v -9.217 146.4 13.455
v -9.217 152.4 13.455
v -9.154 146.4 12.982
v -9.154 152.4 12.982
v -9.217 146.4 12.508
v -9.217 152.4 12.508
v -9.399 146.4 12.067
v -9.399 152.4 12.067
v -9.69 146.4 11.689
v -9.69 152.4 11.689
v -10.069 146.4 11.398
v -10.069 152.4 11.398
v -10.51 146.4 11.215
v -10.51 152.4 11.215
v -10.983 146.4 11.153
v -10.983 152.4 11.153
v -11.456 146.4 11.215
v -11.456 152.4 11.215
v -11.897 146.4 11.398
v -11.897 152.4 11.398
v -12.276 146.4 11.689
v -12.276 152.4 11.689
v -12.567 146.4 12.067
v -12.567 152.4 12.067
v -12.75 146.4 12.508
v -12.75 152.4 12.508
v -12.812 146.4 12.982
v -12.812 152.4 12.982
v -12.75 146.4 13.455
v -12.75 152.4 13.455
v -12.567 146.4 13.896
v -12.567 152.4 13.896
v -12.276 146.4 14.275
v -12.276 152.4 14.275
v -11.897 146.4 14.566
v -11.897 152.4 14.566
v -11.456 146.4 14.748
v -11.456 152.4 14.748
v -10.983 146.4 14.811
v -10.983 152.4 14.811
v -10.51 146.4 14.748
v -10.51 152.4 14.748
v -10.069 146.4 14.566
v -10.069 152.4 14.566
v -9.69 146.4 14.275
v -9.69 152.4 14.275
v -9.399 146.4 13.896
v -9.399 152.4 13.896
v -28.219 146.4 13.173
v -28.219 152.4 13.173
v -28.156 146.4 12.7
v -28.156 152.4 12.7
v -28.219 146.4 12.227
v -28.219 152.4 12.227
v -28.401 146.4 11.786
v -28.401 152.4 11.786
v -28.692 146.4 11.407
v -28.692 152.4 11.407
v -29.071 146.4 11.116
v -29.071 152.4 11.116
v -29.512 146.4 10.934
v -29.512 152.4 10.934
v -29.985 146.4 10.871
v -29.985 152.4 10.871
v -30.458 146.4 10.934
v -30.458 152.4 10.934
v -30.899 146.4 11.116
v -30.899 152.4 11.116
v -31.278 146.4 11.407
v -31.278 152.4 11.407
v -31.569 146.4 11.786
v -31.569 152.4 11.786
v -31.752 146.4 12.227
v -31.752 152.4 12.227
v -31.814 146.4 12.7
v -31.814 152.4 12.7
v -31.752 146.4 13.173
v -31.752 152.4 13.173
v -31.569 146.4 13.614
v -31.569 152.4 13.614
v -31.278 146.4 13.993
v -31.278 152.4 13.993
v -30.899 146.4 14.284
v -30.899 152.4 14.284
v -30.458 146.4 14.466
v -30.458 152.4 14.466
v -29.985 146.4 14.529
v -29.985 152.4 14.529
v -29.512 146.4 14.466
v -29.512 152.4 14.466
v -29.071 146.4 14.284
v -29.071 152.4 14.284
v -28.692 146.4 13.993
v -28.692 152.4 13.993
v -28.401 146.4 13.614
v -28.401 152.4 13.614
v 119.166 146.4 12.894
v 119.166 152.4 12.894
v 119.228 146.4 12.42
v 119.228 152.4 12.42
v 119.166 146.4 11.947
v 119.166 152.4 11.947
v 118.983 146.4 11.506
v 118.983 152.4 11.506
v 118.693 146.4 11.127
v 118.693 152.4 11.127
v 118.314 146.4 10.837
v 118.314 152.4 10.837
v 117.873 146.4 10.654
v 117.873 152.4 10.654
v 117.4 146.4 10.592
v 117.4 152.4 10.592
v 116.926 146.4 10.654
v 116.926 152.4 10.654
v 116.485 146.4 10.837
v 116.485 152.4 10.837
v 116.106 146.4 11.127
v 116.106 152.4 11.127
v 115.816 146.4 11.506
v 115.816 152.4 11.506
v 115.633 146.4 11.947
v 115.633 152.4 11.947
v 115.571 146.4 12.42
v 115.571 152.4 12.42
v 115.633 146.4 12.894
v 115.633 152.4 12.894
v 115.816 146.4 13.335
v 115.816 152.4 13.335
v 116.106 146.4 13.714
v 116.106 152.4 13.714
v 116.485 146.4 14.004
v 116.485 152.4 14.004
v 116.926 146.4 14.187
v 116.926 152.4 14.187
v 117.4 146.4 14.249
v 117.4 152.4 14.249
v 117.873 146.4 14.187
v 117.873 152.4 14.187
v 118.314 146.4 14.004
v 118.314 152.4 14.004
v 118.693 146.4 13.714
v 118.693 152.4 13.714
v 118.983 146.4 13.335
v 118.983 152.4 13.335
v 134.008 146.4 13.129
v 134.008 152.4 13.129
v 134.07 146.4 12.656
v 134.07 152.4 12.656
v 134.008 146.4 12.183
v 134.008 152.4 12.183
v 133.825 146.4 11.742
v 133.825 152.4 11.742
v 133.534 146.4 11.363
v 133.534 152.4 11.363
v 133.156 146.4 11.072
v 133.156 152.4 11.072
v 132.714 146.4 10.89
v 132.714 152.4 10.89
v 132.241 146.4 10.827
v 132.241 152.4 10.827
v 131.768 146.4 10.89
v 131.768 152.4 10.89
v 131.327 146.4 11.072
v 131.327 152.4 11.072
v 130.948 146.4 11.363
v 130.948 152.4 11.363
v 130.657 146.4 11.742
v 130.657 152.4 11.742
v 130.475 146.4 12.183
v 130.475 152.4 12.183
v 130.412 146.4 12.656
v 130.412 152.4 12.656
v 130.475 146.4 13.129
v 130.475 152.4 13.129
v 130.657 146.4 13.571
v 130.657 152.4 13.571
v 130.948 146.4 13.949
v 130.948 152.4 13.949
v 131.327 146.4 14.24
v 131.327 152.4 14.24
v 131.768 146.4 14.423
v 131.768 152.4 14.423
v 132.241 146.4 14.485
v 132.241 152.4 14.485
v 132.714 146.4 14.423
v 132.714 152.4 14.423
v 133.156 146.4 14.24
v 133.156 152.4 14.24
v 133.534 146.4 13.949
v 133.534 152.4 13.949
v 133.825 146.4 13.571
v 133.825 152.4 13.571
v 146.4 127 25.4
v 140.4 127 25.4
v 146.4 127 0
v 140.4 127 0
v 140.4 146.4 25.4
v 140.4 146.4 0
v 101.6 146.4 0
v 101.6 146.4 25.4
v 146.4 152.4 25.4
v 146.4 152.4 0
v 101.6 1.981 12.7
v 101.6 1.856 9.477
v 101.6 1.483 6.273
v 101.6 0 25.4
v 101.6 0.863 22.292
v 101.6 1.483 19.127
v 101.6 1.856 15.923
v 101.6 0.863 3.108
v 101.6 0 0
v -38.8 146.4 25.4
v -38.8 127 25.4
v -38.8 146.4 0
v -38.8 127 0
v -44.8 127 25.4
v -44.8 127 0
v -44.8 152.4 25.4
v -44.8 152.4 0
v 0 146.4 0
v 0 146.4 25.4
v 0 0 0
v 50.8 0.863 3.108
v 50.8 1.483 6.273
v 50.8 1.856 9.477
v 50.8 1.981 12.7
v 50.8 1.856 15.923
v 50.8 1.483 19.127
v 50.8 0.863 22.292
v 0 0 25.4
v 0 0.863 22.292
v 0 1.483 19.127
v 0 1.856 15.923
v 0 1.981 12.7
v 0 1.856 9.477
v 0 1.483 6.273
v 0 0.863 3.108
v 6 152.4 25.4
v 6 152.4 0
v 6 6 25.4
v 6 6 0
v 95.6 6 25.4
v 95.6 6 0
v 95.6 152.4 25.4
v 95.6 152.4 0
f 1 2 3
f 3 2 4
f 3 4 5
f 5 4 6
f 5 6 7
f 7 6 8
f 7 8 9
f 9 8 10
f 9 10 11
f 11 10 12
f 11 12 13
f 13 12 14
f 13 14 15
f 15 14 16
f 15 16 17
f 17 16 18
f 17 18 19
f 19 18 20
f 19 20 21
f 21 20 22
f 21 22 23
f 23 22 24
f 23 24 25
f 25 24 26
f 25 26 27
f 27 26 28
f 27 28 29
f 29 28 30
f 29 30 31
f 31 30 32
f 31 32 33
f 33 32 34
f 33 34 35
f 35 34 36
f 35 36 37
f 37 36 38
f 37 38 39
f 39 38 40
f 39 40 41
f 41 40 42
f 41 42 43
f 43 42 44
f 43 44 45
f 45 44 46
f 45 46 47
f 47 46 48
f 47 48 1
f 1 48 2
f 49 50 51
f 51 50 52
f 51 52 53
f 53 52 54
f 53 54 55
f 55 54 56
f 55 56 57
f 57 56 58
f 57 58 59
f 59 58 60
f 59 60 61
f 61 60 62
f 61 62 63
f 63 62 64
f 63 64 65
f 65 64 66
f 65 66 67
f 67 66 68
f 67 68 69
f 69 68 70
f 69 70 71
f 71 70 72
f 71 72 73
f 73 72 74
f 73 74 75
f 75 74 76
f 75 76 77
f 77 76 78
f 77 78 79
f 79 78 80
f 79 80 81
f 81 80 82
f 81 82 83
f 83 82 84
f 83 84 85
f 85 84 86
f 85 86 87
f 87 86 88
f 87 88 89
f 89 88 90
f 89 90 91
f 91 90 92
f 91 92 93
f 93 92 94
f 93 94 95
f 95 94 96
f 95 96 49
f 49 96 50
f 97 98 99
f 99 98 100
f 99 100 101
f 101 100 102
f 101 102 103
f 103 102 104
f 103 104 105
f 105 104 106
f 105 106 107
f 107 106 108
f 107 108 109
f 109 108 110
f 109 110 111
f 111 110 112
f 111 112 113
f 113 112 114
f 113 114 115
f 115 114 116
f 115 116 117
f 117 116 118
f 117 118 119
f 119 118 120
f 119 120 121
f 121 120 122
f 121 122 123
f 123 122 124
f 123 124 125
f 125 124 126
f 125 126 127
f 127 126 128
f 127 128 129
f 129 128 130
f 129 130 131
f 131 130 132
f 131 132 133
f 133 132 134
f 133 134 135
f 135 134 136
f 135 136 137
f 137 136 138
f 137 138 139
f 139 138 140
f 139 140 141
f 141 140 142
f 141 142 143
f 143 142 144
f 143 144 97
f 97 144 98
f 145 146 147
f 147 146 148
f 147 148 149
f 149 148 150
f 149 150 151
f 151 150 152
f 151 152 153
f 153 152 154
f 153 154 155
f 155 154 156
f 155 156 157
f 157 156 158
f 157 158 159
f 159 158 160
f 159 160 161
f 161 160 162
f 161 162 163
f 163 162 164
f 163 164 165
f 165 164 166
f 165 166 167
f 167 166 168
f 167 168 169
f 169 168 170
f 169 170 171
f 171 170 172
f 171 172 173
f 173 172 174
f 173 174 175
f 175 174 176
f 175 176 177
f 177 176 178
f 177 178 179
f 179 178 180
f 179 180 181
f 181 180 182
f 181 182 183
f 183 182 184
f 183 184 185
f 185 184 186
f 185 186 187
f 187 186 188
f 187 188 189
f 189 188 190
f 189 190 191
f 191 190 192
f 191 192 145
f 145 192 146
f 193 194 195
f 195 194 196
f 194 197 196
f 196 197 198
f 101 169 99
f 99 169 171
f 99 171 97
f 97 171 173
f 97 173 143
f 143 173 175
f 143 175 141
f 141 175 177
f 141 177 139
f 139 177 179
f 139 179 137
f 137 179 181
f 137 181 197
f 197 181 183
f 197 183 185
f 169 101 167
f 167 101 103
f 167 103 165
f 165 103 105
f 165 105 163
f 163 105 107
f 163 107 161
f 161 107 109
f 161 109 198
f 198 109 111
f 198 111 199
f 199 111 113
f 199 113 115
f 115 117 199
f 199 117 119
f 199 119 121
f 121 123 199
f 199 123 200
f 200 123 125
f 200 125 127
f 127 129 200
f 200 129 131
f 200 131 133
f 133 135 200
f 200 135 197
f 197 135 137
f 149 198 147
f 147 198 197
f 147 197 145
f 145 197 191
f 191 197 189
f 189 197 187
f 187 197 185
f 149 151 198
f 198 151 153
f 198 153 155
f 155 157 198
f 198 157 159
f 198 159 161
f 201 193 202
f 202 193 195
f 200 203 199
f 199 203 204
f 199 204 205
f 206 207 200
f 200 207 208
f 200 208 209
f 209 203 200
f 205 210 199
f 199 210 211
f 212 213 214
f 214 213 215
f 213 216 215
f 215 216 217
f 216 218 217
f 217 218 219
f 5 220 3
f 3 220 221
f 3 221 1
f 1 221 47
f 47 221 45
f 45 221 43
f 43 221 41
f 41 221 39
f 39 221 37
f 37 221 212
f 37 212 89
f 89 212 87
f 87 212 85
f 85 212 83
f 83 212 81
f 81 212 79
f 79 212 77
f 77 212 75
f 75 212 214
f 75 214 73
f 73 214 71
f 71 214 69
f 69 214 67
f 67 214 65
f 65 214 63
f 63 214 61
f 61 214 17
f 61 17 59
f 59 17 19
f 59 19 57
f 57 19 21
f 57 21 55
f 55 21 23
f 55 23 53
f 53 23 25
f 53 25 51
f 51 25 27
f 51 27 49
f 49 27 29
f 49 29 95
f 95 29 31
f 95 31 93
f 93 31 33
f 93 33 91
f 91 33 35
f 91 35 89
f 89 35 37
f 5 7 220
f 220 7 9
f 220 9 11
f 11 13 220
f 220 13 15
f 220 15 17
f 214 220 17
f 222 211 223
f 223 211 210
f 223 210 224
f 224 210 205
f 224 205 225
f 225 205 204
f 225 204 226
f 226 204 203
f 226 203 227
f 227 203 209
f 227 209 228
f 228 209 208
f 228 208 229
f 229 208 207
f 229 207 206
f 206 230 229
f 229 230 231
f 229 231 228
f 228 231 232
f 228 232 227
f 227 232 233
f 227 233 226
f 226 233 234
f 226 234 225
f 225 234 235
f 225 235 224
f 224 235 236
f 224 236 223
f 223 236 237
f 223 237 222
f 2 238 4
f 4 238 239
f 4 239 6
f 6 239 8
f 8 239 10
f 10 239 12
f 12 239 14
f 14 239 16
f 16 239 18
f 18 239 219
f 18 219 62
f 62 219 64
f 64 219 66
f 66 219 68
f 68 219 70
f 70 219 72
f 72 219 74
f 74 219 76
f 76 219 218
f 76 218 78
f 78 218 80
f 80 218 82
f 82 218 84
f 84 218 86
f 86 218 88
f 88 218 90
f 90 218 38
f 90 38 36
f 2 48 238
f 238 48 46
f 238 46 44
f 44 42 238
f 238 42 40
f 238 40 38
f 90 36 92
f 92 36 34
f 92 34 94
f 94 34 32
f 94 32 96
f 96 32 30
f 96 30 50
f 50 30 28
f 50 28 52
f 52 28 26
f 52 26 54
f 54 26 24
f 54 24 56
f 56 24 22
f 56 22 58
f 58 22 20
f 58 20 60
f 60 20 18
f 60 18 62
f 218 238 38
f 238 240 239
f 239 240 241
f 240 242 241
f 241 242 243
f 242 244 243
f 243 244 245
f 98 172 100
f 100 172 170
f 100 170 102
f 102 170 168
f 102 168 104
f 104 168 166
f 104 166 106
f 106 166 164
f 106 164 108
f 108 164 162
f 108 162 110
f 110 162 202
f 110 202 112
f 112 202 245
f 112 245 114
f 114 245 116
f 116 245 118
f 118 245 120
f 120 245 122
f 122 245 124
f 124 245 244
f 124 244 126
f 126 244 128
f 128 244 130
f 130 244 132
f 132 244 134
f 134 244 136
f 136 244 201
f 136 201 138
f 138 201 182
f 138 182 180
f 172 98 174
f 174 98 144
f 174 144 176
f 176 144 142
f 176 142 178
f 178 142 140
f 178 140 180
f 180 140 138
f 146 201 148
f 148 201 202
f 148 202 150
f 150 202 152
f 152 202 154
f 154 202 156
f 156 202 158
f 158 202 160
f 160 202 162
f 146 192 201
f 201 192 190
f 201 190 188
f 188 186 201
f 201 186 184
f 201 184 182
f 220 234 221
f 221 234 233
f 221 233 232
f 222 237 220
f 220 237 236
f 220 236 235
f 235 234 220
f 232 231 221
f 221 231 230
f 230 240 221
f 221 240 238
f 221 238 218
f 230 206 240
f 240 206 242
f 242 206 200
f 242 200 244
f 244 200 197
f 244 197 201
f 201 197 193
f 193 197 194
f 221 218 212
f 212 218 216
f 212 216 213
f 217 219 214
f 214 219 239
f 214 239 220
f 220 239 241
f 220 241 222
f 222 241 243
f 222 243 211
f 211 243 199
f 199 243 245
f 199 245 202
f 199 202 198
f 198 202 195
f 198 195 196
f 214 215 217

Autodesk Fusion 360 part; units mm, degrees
sketch "Sketch1" plane through (0, 0, 0) normal (0, 0, 1) x (1, 0, 0)
  line L0 (0, 0) -> (101.6, 0)
  line L1 (101.6, 0) -> (101.6, 6)
  line L2 (101.6, 6) -> (0, 6)
  line L3 (0, 6) -> (0, 0)
  dimension "d1" = 101.6
  dimension "d2" = 6
extrude "Extrude1" add sketch "Sketch1" along normal blind 25.4
sketch "Sketch2" plane through (0, 0, 25.4) normal (0, 0, 1) x (-1, 0, 0)
  line L0 (0, -6) -> (0, 0)
  line L1 (0, 0) -> (-101.6, 0)
  line L2 (-101.6, 0) -> (-101.6, -6)
  line L3 (-101.6, -6) -> (0, -6)
  line L4 (-101.6, 0) -> (-95.6, 0)
  line L5 (-95.6, 0) -> (-95.6, -152.4)
  line L6 (-95.6, -152.4) -> (-101.6, -152.4)
  line L7 (-101.6, -152.4) -> (-101.6, 0)
  dimension "d5" = 152.4
  dimension "d6" = 6
extrude "Extrude2" add sketch "Sketch2" against normal blind 25.4 contours L3 L5 L6 L7
sketch "Sketch3" plane through (0, 0, 25.4) normal (0, 0, 1) x (-1, 0, 0)
  line L0 (0, -6) -> (0, 0)
  line L1 (0, 0) -> (-101.6, 0)
  line L2 (-101.6, 0) -> (-101.6, -152.4)
  line L3 (-101.6, -152.4) -> (-95.6, -152.4)
  line L4 (-95.6, -152.4) -> (-95.6, -6)
  line L5 (-95.6, -6) -> (0, -6)
  line L6 (0, 0) -> (-6, 0)
  line L7 (-6, 0) -> (-6, -152.4)
  line L8 (-6, -152.4) -> (0, -152.4)
  line L9 (0, -152.4) -> (0, 0)
  dimension "d9" = 152.4
  dimension "d10" = 6
extrude "Extrude3" add sketch "Sketch3" against normal blind 25.4 contours L5 L7 L8 L9
sketch "Sketch4" plane through (101.6, 0, 0) normal (1, 0, 0) x (0, 1, 0)
  line L0 (0, 0) -> (152.4, 0)
  line L1 (152.4, 0) -> (152.4, 25.4)
  line L2 (152.4, 25.4) -> (0, 25.4)
  line L3 (0, 25.4) -> (0, 0)
  circle A0 centre (-39.719, 12.7) radius 41.7
  dimension "d13" = 83.4
extrude "Extrude4" cut sketch "Sketch4" against normal blind 101.6 contours L3 A0 picked at (0.3655, 9.8525)
sketch "Sketch5" plane through (0, 0, 25.4) normal (0, 0, 1) x (-1, 0, 0)
  line L0 (0, -152.4) -> (0, 0)
  line L1 (0, 0) -> (-101.6, 0)
  line L2 (-101.6, 0) -> (-101.6, -152.4)
  line L3 (-101.6, -152.4) -> (-95.6, -152.4)
  line L4 (-95.6, -152.4) -> (-95.6, -6)
  line L5 (-95.6, -6) -> (-6, -6)
  line L6 (-6, -6) -> (-6, -152.4)
  line L7 (-6, -152.4) -> (0, -152.4)
  line L8 (-6, -152.4) -> (44.8, -152.4)
  line L9 (44.8, -152.4) -> (44.8, -146.4)
  line L10 (44.8, -146.4) -> (-6, -146.4)
  line L11 (-6, -146.4) -> (-6, -152.4)
  dimension "d16" = 50.8
  dimension "d17" = 6
extrude "Extrude5" add sketch "Sketch5" against normal blind 25.4 contours L0 L8 L9 L10
sketch "Sketch6" plane through (0, 0, 25.4) normal (0, 0, 1) x (-1, 0, 0)
  line L0 (0, -146.4) -> (0, 0)
  line L1 (0, 0) -> (-101.6, 0)
  line L2 (-101.6, 0) -> (-101.6, -152.4)
  line L3 (-101.6, -152.4) -> (-95.6, -152.4)
  line L4 (-95.6, -152.4) -> (-95.6, -6)
  line L5 (-95.6, -6) -> (-6, -6)
  line L6 (-6, -6) -> (-6, -152.4)
  line L7 (-6, -152.4) -> (44.8, -152.4)
  line L8 (44.8, -152.4) -> (44.8, -146.4)
  line L9 (44.8, -146.4) -> (0, -146.4)
  line L10 (44.8, -152.4) -> (38.8, -152.4)
  line L11 (38.8, -152.4) -> (38.8, -127)
  line L12 (38.8, -127) -> (44.8, -127)
  line L13 (44.8, -127) -> (44.8, -152.4)
  dimension "d20" = 25.4
  dimension "d21" = 6
extrude "Extrude6" add sketch "Sketch6" against normal blind 25.4 contours L9 L11 L12 L13
sketch "Sketch7" plane through (0, 0, 25.4) normal (0, 0, 1) x (-1, 0, 0)
  line L0 (0, -146.4) -> (0, 0)
  line L1 (0, 0) -> (-101.6, 0)
  line L2 (-101.6, 0) -> (-101.6, -152.4)
  line L3 (-101.6, -152.4) -> (-95.6, -152.4)
  line L4 (-95.6, -152.4) -> (-95.6, -6)
  line L5 (-95.6, -6) -> (-6, -6)
  line L6 (-6, -6) -> (-6, -152.4)
  line L7 (-6, -152.4) -> (44.8, -152.4)
  line L8 (44.8, -152.4) -> (44.8, -127)
  line L9 (44.8, -127) -> (38.8, -127)
  line L10 (38.8, -127) -> (38.8, -146.4)
  line L11 (38.8, -146.4) -> (0, -146.4)
  line L12 (-95.6, -152.4) -> (-146.4, -152.4)
  line L13 (-146.4, -152.4) -> (-146.4, -146.4)
  line L14 (-146.4, -146.4) -> (-95.6, -146.4)
  line L15 (-95.6, -146.4) -> (-95.6, -152.4)
  dimension "d24" = 50.8
  dimension "d25" = 6
extrude "Extrude7" add sketch "Sketch7" against normal blind 25.4 contours L2 L12 L13 L14
sketch "Sketch8" plane through (0, 0, 25.4) normal (0, 0, 1) x (-1, 0, 0)
  line L0 (0, -146.4) -> (0, 0)
  line L1 (0, 0) -> (-101.6, 0)
  line L2 (-101.6, 0) -> (-101.6, -146.4)
  line L3 (-101.6, -146.4) -> (-146.4, -146.4)
  line L4 (-146.4, -146.4) -> (-146.4, -152.4)
  line L5 (-146.4, -152.4) -> (-95.6, -152.4)
  line L6 (-95.6, -152.4) -> (-95.6, -6)
  line L7 (-95.6, -6) -> (-6, -6)
  line L8 (-6, -6) -> (-6, -152.4)
  line L9 (-6, -152.4) -> (44.8, -152.4)
  line L10 (44.8, -152.4) -> (44.8, -127)
  line L11 (44.8, -127) -> (38.8, -127)
  line L12 (38.8, -127) -> (38.8, -146.4)
  line L13 (38.8, -146.4) -> (0, -146.4)
  line L14 (-146.4, -152.4) -> (-140.4, -152.4)
  line L15 (-140.4, -152.4) -> (-140.4, -127)
  line L16 (-140.4, -127) -> (-146.4, -127)
  line L17 (-146.4, -127) -> (-146.4, -152.4)
  dimension "d28" = 25.4
  dimension "d29" = 6
extrude "Extrude8" add sketch "Sketch8" against normal blind 25.4 contours L3 L15 L16 L17
sketch "Sketch9" plane through (0, 152.4, 0) normal (0, 1, 0) x (-1, 0, 0)
  line L0 (-95.6, 25.4) -> (-146.4, 25.4)
  line L1 (-146.4, 25.4) -> (-146.4, 0)
  line L2 (-146.4, 0) -> (-95.6, 0)
  line L3 (-95.6, 0) -> (-95.6, 25.4)
  circle A0 centre (-132.2412, 12.6561) radius 1.8288
  circle A1 centre (-112.7392, 12.6561) radius 1.8288
  dimension "d32" = 3.6576
  dimension "d33" = 3.6576
extrude "Extrude9" cut sketch "Sketch9" against normal blind 25 contours A0
sketch "Sketch10" plane through (0, 152.4, 0) normal (0, 1, 0) x (-1, 0, 0)
  circle A0 centre (-132.2412, 12.6561) radius 1.8288
  line L0 (-95.6, 25.4) -> (-146.4, 25.4)
  line L1 (-146.4, 25.4) -> (-146.4, 0)
  line L2 (-146.4, 0) -> (-95.6, 0)
  line L3 (-95.6, 0) -> (-95.6, 25.4)
  circle A1 centre (-117.3996, 12.4204) radius 1.8288
  dimension "d36" = 3.6576
extrude "Extrude10" cut sketch "Sketch10" against normal blind 30 contours A1
sketch "Sketch11" plane through (0, 152.4, 0) normal (0, 1, 0) x (-1, 0, 0)
  line L0 (44.8, 25.4) -> (-6, 25.4)
  line L1 (-6, 25.4) -> (-6, 0)
  line L2 (-6, 0) -> (44.8, 0)
  line L3 (44.8, 0) -> (44.8, 25.4)
  circle A0 centre (29.9851, 12.7) radius 1.8288
  dimension "d39" = 3.6576
extrude "Extrude11" cut sketch "Sketch11" against normal blind 20 contours A0
sketch "Sketch12" plane through (0, 152.4, 0) normal (0, 1, 0) x (-1, 0, 0)
  circle A0 centre (29.9851, 12.7) radius 1.8288
  line L0 (44.8, 25.4) -> (-6, 25.4)
  line L1 (-6, 25.4) -> (-6, 0)
  line L2 (-6, 0) -> (44.8, 0)
  line L3 (44.8, 0) -> (44.8, 25.4)
  circle A1 centre (10.9831, 12.9818) radius 1.8288
  dimension "d42" = 3.6576
extrude "Extrude12" cut sketch "Sketch12" against normal blind 30 contours A1
sketch "Sketch13" plane through (0, 0, 25.4) normal (0, 0, 1) x (-1, 0, 0)
  line L0 (0, -146.4) -> (0, 0)
  line L1 (0, 0) -> (-101.6, 0)
  line L2 (-101.6, 0) -> (-101.6, -146.4)
  line L3 (-101.6, -146.4) -> (-140.4, -146.4)
  line L4 (-140.4, -146.4) -> (-140.4, -127)
  line L5 (-140.4, -127) -> (-146.4, -127)
  line L6 (-146.4, -127) -> (-146.4, -152.4)
  line L7 (-146.4, -152.4) -> (-95.6, -152.4)
  line L8 (-95.6, -152.4) -> (-95.6, -6)
  line L9 (-95.6, -6) -> (-6, -6)
  line L10 (-6, -6) -> (-6, -152.4)
  line L11 (-6, -152.4) -> (44.8, -152.4)
  line L12 (44.8, -152.4) -> (44.8, -127)
  line L13 (44.8, -127) -> (38.8, -127)
  line L14 (38.8, -127) -> (38.8, -146.4)
  line L15 (38.8, -146.4) -> (0, -146.4)
